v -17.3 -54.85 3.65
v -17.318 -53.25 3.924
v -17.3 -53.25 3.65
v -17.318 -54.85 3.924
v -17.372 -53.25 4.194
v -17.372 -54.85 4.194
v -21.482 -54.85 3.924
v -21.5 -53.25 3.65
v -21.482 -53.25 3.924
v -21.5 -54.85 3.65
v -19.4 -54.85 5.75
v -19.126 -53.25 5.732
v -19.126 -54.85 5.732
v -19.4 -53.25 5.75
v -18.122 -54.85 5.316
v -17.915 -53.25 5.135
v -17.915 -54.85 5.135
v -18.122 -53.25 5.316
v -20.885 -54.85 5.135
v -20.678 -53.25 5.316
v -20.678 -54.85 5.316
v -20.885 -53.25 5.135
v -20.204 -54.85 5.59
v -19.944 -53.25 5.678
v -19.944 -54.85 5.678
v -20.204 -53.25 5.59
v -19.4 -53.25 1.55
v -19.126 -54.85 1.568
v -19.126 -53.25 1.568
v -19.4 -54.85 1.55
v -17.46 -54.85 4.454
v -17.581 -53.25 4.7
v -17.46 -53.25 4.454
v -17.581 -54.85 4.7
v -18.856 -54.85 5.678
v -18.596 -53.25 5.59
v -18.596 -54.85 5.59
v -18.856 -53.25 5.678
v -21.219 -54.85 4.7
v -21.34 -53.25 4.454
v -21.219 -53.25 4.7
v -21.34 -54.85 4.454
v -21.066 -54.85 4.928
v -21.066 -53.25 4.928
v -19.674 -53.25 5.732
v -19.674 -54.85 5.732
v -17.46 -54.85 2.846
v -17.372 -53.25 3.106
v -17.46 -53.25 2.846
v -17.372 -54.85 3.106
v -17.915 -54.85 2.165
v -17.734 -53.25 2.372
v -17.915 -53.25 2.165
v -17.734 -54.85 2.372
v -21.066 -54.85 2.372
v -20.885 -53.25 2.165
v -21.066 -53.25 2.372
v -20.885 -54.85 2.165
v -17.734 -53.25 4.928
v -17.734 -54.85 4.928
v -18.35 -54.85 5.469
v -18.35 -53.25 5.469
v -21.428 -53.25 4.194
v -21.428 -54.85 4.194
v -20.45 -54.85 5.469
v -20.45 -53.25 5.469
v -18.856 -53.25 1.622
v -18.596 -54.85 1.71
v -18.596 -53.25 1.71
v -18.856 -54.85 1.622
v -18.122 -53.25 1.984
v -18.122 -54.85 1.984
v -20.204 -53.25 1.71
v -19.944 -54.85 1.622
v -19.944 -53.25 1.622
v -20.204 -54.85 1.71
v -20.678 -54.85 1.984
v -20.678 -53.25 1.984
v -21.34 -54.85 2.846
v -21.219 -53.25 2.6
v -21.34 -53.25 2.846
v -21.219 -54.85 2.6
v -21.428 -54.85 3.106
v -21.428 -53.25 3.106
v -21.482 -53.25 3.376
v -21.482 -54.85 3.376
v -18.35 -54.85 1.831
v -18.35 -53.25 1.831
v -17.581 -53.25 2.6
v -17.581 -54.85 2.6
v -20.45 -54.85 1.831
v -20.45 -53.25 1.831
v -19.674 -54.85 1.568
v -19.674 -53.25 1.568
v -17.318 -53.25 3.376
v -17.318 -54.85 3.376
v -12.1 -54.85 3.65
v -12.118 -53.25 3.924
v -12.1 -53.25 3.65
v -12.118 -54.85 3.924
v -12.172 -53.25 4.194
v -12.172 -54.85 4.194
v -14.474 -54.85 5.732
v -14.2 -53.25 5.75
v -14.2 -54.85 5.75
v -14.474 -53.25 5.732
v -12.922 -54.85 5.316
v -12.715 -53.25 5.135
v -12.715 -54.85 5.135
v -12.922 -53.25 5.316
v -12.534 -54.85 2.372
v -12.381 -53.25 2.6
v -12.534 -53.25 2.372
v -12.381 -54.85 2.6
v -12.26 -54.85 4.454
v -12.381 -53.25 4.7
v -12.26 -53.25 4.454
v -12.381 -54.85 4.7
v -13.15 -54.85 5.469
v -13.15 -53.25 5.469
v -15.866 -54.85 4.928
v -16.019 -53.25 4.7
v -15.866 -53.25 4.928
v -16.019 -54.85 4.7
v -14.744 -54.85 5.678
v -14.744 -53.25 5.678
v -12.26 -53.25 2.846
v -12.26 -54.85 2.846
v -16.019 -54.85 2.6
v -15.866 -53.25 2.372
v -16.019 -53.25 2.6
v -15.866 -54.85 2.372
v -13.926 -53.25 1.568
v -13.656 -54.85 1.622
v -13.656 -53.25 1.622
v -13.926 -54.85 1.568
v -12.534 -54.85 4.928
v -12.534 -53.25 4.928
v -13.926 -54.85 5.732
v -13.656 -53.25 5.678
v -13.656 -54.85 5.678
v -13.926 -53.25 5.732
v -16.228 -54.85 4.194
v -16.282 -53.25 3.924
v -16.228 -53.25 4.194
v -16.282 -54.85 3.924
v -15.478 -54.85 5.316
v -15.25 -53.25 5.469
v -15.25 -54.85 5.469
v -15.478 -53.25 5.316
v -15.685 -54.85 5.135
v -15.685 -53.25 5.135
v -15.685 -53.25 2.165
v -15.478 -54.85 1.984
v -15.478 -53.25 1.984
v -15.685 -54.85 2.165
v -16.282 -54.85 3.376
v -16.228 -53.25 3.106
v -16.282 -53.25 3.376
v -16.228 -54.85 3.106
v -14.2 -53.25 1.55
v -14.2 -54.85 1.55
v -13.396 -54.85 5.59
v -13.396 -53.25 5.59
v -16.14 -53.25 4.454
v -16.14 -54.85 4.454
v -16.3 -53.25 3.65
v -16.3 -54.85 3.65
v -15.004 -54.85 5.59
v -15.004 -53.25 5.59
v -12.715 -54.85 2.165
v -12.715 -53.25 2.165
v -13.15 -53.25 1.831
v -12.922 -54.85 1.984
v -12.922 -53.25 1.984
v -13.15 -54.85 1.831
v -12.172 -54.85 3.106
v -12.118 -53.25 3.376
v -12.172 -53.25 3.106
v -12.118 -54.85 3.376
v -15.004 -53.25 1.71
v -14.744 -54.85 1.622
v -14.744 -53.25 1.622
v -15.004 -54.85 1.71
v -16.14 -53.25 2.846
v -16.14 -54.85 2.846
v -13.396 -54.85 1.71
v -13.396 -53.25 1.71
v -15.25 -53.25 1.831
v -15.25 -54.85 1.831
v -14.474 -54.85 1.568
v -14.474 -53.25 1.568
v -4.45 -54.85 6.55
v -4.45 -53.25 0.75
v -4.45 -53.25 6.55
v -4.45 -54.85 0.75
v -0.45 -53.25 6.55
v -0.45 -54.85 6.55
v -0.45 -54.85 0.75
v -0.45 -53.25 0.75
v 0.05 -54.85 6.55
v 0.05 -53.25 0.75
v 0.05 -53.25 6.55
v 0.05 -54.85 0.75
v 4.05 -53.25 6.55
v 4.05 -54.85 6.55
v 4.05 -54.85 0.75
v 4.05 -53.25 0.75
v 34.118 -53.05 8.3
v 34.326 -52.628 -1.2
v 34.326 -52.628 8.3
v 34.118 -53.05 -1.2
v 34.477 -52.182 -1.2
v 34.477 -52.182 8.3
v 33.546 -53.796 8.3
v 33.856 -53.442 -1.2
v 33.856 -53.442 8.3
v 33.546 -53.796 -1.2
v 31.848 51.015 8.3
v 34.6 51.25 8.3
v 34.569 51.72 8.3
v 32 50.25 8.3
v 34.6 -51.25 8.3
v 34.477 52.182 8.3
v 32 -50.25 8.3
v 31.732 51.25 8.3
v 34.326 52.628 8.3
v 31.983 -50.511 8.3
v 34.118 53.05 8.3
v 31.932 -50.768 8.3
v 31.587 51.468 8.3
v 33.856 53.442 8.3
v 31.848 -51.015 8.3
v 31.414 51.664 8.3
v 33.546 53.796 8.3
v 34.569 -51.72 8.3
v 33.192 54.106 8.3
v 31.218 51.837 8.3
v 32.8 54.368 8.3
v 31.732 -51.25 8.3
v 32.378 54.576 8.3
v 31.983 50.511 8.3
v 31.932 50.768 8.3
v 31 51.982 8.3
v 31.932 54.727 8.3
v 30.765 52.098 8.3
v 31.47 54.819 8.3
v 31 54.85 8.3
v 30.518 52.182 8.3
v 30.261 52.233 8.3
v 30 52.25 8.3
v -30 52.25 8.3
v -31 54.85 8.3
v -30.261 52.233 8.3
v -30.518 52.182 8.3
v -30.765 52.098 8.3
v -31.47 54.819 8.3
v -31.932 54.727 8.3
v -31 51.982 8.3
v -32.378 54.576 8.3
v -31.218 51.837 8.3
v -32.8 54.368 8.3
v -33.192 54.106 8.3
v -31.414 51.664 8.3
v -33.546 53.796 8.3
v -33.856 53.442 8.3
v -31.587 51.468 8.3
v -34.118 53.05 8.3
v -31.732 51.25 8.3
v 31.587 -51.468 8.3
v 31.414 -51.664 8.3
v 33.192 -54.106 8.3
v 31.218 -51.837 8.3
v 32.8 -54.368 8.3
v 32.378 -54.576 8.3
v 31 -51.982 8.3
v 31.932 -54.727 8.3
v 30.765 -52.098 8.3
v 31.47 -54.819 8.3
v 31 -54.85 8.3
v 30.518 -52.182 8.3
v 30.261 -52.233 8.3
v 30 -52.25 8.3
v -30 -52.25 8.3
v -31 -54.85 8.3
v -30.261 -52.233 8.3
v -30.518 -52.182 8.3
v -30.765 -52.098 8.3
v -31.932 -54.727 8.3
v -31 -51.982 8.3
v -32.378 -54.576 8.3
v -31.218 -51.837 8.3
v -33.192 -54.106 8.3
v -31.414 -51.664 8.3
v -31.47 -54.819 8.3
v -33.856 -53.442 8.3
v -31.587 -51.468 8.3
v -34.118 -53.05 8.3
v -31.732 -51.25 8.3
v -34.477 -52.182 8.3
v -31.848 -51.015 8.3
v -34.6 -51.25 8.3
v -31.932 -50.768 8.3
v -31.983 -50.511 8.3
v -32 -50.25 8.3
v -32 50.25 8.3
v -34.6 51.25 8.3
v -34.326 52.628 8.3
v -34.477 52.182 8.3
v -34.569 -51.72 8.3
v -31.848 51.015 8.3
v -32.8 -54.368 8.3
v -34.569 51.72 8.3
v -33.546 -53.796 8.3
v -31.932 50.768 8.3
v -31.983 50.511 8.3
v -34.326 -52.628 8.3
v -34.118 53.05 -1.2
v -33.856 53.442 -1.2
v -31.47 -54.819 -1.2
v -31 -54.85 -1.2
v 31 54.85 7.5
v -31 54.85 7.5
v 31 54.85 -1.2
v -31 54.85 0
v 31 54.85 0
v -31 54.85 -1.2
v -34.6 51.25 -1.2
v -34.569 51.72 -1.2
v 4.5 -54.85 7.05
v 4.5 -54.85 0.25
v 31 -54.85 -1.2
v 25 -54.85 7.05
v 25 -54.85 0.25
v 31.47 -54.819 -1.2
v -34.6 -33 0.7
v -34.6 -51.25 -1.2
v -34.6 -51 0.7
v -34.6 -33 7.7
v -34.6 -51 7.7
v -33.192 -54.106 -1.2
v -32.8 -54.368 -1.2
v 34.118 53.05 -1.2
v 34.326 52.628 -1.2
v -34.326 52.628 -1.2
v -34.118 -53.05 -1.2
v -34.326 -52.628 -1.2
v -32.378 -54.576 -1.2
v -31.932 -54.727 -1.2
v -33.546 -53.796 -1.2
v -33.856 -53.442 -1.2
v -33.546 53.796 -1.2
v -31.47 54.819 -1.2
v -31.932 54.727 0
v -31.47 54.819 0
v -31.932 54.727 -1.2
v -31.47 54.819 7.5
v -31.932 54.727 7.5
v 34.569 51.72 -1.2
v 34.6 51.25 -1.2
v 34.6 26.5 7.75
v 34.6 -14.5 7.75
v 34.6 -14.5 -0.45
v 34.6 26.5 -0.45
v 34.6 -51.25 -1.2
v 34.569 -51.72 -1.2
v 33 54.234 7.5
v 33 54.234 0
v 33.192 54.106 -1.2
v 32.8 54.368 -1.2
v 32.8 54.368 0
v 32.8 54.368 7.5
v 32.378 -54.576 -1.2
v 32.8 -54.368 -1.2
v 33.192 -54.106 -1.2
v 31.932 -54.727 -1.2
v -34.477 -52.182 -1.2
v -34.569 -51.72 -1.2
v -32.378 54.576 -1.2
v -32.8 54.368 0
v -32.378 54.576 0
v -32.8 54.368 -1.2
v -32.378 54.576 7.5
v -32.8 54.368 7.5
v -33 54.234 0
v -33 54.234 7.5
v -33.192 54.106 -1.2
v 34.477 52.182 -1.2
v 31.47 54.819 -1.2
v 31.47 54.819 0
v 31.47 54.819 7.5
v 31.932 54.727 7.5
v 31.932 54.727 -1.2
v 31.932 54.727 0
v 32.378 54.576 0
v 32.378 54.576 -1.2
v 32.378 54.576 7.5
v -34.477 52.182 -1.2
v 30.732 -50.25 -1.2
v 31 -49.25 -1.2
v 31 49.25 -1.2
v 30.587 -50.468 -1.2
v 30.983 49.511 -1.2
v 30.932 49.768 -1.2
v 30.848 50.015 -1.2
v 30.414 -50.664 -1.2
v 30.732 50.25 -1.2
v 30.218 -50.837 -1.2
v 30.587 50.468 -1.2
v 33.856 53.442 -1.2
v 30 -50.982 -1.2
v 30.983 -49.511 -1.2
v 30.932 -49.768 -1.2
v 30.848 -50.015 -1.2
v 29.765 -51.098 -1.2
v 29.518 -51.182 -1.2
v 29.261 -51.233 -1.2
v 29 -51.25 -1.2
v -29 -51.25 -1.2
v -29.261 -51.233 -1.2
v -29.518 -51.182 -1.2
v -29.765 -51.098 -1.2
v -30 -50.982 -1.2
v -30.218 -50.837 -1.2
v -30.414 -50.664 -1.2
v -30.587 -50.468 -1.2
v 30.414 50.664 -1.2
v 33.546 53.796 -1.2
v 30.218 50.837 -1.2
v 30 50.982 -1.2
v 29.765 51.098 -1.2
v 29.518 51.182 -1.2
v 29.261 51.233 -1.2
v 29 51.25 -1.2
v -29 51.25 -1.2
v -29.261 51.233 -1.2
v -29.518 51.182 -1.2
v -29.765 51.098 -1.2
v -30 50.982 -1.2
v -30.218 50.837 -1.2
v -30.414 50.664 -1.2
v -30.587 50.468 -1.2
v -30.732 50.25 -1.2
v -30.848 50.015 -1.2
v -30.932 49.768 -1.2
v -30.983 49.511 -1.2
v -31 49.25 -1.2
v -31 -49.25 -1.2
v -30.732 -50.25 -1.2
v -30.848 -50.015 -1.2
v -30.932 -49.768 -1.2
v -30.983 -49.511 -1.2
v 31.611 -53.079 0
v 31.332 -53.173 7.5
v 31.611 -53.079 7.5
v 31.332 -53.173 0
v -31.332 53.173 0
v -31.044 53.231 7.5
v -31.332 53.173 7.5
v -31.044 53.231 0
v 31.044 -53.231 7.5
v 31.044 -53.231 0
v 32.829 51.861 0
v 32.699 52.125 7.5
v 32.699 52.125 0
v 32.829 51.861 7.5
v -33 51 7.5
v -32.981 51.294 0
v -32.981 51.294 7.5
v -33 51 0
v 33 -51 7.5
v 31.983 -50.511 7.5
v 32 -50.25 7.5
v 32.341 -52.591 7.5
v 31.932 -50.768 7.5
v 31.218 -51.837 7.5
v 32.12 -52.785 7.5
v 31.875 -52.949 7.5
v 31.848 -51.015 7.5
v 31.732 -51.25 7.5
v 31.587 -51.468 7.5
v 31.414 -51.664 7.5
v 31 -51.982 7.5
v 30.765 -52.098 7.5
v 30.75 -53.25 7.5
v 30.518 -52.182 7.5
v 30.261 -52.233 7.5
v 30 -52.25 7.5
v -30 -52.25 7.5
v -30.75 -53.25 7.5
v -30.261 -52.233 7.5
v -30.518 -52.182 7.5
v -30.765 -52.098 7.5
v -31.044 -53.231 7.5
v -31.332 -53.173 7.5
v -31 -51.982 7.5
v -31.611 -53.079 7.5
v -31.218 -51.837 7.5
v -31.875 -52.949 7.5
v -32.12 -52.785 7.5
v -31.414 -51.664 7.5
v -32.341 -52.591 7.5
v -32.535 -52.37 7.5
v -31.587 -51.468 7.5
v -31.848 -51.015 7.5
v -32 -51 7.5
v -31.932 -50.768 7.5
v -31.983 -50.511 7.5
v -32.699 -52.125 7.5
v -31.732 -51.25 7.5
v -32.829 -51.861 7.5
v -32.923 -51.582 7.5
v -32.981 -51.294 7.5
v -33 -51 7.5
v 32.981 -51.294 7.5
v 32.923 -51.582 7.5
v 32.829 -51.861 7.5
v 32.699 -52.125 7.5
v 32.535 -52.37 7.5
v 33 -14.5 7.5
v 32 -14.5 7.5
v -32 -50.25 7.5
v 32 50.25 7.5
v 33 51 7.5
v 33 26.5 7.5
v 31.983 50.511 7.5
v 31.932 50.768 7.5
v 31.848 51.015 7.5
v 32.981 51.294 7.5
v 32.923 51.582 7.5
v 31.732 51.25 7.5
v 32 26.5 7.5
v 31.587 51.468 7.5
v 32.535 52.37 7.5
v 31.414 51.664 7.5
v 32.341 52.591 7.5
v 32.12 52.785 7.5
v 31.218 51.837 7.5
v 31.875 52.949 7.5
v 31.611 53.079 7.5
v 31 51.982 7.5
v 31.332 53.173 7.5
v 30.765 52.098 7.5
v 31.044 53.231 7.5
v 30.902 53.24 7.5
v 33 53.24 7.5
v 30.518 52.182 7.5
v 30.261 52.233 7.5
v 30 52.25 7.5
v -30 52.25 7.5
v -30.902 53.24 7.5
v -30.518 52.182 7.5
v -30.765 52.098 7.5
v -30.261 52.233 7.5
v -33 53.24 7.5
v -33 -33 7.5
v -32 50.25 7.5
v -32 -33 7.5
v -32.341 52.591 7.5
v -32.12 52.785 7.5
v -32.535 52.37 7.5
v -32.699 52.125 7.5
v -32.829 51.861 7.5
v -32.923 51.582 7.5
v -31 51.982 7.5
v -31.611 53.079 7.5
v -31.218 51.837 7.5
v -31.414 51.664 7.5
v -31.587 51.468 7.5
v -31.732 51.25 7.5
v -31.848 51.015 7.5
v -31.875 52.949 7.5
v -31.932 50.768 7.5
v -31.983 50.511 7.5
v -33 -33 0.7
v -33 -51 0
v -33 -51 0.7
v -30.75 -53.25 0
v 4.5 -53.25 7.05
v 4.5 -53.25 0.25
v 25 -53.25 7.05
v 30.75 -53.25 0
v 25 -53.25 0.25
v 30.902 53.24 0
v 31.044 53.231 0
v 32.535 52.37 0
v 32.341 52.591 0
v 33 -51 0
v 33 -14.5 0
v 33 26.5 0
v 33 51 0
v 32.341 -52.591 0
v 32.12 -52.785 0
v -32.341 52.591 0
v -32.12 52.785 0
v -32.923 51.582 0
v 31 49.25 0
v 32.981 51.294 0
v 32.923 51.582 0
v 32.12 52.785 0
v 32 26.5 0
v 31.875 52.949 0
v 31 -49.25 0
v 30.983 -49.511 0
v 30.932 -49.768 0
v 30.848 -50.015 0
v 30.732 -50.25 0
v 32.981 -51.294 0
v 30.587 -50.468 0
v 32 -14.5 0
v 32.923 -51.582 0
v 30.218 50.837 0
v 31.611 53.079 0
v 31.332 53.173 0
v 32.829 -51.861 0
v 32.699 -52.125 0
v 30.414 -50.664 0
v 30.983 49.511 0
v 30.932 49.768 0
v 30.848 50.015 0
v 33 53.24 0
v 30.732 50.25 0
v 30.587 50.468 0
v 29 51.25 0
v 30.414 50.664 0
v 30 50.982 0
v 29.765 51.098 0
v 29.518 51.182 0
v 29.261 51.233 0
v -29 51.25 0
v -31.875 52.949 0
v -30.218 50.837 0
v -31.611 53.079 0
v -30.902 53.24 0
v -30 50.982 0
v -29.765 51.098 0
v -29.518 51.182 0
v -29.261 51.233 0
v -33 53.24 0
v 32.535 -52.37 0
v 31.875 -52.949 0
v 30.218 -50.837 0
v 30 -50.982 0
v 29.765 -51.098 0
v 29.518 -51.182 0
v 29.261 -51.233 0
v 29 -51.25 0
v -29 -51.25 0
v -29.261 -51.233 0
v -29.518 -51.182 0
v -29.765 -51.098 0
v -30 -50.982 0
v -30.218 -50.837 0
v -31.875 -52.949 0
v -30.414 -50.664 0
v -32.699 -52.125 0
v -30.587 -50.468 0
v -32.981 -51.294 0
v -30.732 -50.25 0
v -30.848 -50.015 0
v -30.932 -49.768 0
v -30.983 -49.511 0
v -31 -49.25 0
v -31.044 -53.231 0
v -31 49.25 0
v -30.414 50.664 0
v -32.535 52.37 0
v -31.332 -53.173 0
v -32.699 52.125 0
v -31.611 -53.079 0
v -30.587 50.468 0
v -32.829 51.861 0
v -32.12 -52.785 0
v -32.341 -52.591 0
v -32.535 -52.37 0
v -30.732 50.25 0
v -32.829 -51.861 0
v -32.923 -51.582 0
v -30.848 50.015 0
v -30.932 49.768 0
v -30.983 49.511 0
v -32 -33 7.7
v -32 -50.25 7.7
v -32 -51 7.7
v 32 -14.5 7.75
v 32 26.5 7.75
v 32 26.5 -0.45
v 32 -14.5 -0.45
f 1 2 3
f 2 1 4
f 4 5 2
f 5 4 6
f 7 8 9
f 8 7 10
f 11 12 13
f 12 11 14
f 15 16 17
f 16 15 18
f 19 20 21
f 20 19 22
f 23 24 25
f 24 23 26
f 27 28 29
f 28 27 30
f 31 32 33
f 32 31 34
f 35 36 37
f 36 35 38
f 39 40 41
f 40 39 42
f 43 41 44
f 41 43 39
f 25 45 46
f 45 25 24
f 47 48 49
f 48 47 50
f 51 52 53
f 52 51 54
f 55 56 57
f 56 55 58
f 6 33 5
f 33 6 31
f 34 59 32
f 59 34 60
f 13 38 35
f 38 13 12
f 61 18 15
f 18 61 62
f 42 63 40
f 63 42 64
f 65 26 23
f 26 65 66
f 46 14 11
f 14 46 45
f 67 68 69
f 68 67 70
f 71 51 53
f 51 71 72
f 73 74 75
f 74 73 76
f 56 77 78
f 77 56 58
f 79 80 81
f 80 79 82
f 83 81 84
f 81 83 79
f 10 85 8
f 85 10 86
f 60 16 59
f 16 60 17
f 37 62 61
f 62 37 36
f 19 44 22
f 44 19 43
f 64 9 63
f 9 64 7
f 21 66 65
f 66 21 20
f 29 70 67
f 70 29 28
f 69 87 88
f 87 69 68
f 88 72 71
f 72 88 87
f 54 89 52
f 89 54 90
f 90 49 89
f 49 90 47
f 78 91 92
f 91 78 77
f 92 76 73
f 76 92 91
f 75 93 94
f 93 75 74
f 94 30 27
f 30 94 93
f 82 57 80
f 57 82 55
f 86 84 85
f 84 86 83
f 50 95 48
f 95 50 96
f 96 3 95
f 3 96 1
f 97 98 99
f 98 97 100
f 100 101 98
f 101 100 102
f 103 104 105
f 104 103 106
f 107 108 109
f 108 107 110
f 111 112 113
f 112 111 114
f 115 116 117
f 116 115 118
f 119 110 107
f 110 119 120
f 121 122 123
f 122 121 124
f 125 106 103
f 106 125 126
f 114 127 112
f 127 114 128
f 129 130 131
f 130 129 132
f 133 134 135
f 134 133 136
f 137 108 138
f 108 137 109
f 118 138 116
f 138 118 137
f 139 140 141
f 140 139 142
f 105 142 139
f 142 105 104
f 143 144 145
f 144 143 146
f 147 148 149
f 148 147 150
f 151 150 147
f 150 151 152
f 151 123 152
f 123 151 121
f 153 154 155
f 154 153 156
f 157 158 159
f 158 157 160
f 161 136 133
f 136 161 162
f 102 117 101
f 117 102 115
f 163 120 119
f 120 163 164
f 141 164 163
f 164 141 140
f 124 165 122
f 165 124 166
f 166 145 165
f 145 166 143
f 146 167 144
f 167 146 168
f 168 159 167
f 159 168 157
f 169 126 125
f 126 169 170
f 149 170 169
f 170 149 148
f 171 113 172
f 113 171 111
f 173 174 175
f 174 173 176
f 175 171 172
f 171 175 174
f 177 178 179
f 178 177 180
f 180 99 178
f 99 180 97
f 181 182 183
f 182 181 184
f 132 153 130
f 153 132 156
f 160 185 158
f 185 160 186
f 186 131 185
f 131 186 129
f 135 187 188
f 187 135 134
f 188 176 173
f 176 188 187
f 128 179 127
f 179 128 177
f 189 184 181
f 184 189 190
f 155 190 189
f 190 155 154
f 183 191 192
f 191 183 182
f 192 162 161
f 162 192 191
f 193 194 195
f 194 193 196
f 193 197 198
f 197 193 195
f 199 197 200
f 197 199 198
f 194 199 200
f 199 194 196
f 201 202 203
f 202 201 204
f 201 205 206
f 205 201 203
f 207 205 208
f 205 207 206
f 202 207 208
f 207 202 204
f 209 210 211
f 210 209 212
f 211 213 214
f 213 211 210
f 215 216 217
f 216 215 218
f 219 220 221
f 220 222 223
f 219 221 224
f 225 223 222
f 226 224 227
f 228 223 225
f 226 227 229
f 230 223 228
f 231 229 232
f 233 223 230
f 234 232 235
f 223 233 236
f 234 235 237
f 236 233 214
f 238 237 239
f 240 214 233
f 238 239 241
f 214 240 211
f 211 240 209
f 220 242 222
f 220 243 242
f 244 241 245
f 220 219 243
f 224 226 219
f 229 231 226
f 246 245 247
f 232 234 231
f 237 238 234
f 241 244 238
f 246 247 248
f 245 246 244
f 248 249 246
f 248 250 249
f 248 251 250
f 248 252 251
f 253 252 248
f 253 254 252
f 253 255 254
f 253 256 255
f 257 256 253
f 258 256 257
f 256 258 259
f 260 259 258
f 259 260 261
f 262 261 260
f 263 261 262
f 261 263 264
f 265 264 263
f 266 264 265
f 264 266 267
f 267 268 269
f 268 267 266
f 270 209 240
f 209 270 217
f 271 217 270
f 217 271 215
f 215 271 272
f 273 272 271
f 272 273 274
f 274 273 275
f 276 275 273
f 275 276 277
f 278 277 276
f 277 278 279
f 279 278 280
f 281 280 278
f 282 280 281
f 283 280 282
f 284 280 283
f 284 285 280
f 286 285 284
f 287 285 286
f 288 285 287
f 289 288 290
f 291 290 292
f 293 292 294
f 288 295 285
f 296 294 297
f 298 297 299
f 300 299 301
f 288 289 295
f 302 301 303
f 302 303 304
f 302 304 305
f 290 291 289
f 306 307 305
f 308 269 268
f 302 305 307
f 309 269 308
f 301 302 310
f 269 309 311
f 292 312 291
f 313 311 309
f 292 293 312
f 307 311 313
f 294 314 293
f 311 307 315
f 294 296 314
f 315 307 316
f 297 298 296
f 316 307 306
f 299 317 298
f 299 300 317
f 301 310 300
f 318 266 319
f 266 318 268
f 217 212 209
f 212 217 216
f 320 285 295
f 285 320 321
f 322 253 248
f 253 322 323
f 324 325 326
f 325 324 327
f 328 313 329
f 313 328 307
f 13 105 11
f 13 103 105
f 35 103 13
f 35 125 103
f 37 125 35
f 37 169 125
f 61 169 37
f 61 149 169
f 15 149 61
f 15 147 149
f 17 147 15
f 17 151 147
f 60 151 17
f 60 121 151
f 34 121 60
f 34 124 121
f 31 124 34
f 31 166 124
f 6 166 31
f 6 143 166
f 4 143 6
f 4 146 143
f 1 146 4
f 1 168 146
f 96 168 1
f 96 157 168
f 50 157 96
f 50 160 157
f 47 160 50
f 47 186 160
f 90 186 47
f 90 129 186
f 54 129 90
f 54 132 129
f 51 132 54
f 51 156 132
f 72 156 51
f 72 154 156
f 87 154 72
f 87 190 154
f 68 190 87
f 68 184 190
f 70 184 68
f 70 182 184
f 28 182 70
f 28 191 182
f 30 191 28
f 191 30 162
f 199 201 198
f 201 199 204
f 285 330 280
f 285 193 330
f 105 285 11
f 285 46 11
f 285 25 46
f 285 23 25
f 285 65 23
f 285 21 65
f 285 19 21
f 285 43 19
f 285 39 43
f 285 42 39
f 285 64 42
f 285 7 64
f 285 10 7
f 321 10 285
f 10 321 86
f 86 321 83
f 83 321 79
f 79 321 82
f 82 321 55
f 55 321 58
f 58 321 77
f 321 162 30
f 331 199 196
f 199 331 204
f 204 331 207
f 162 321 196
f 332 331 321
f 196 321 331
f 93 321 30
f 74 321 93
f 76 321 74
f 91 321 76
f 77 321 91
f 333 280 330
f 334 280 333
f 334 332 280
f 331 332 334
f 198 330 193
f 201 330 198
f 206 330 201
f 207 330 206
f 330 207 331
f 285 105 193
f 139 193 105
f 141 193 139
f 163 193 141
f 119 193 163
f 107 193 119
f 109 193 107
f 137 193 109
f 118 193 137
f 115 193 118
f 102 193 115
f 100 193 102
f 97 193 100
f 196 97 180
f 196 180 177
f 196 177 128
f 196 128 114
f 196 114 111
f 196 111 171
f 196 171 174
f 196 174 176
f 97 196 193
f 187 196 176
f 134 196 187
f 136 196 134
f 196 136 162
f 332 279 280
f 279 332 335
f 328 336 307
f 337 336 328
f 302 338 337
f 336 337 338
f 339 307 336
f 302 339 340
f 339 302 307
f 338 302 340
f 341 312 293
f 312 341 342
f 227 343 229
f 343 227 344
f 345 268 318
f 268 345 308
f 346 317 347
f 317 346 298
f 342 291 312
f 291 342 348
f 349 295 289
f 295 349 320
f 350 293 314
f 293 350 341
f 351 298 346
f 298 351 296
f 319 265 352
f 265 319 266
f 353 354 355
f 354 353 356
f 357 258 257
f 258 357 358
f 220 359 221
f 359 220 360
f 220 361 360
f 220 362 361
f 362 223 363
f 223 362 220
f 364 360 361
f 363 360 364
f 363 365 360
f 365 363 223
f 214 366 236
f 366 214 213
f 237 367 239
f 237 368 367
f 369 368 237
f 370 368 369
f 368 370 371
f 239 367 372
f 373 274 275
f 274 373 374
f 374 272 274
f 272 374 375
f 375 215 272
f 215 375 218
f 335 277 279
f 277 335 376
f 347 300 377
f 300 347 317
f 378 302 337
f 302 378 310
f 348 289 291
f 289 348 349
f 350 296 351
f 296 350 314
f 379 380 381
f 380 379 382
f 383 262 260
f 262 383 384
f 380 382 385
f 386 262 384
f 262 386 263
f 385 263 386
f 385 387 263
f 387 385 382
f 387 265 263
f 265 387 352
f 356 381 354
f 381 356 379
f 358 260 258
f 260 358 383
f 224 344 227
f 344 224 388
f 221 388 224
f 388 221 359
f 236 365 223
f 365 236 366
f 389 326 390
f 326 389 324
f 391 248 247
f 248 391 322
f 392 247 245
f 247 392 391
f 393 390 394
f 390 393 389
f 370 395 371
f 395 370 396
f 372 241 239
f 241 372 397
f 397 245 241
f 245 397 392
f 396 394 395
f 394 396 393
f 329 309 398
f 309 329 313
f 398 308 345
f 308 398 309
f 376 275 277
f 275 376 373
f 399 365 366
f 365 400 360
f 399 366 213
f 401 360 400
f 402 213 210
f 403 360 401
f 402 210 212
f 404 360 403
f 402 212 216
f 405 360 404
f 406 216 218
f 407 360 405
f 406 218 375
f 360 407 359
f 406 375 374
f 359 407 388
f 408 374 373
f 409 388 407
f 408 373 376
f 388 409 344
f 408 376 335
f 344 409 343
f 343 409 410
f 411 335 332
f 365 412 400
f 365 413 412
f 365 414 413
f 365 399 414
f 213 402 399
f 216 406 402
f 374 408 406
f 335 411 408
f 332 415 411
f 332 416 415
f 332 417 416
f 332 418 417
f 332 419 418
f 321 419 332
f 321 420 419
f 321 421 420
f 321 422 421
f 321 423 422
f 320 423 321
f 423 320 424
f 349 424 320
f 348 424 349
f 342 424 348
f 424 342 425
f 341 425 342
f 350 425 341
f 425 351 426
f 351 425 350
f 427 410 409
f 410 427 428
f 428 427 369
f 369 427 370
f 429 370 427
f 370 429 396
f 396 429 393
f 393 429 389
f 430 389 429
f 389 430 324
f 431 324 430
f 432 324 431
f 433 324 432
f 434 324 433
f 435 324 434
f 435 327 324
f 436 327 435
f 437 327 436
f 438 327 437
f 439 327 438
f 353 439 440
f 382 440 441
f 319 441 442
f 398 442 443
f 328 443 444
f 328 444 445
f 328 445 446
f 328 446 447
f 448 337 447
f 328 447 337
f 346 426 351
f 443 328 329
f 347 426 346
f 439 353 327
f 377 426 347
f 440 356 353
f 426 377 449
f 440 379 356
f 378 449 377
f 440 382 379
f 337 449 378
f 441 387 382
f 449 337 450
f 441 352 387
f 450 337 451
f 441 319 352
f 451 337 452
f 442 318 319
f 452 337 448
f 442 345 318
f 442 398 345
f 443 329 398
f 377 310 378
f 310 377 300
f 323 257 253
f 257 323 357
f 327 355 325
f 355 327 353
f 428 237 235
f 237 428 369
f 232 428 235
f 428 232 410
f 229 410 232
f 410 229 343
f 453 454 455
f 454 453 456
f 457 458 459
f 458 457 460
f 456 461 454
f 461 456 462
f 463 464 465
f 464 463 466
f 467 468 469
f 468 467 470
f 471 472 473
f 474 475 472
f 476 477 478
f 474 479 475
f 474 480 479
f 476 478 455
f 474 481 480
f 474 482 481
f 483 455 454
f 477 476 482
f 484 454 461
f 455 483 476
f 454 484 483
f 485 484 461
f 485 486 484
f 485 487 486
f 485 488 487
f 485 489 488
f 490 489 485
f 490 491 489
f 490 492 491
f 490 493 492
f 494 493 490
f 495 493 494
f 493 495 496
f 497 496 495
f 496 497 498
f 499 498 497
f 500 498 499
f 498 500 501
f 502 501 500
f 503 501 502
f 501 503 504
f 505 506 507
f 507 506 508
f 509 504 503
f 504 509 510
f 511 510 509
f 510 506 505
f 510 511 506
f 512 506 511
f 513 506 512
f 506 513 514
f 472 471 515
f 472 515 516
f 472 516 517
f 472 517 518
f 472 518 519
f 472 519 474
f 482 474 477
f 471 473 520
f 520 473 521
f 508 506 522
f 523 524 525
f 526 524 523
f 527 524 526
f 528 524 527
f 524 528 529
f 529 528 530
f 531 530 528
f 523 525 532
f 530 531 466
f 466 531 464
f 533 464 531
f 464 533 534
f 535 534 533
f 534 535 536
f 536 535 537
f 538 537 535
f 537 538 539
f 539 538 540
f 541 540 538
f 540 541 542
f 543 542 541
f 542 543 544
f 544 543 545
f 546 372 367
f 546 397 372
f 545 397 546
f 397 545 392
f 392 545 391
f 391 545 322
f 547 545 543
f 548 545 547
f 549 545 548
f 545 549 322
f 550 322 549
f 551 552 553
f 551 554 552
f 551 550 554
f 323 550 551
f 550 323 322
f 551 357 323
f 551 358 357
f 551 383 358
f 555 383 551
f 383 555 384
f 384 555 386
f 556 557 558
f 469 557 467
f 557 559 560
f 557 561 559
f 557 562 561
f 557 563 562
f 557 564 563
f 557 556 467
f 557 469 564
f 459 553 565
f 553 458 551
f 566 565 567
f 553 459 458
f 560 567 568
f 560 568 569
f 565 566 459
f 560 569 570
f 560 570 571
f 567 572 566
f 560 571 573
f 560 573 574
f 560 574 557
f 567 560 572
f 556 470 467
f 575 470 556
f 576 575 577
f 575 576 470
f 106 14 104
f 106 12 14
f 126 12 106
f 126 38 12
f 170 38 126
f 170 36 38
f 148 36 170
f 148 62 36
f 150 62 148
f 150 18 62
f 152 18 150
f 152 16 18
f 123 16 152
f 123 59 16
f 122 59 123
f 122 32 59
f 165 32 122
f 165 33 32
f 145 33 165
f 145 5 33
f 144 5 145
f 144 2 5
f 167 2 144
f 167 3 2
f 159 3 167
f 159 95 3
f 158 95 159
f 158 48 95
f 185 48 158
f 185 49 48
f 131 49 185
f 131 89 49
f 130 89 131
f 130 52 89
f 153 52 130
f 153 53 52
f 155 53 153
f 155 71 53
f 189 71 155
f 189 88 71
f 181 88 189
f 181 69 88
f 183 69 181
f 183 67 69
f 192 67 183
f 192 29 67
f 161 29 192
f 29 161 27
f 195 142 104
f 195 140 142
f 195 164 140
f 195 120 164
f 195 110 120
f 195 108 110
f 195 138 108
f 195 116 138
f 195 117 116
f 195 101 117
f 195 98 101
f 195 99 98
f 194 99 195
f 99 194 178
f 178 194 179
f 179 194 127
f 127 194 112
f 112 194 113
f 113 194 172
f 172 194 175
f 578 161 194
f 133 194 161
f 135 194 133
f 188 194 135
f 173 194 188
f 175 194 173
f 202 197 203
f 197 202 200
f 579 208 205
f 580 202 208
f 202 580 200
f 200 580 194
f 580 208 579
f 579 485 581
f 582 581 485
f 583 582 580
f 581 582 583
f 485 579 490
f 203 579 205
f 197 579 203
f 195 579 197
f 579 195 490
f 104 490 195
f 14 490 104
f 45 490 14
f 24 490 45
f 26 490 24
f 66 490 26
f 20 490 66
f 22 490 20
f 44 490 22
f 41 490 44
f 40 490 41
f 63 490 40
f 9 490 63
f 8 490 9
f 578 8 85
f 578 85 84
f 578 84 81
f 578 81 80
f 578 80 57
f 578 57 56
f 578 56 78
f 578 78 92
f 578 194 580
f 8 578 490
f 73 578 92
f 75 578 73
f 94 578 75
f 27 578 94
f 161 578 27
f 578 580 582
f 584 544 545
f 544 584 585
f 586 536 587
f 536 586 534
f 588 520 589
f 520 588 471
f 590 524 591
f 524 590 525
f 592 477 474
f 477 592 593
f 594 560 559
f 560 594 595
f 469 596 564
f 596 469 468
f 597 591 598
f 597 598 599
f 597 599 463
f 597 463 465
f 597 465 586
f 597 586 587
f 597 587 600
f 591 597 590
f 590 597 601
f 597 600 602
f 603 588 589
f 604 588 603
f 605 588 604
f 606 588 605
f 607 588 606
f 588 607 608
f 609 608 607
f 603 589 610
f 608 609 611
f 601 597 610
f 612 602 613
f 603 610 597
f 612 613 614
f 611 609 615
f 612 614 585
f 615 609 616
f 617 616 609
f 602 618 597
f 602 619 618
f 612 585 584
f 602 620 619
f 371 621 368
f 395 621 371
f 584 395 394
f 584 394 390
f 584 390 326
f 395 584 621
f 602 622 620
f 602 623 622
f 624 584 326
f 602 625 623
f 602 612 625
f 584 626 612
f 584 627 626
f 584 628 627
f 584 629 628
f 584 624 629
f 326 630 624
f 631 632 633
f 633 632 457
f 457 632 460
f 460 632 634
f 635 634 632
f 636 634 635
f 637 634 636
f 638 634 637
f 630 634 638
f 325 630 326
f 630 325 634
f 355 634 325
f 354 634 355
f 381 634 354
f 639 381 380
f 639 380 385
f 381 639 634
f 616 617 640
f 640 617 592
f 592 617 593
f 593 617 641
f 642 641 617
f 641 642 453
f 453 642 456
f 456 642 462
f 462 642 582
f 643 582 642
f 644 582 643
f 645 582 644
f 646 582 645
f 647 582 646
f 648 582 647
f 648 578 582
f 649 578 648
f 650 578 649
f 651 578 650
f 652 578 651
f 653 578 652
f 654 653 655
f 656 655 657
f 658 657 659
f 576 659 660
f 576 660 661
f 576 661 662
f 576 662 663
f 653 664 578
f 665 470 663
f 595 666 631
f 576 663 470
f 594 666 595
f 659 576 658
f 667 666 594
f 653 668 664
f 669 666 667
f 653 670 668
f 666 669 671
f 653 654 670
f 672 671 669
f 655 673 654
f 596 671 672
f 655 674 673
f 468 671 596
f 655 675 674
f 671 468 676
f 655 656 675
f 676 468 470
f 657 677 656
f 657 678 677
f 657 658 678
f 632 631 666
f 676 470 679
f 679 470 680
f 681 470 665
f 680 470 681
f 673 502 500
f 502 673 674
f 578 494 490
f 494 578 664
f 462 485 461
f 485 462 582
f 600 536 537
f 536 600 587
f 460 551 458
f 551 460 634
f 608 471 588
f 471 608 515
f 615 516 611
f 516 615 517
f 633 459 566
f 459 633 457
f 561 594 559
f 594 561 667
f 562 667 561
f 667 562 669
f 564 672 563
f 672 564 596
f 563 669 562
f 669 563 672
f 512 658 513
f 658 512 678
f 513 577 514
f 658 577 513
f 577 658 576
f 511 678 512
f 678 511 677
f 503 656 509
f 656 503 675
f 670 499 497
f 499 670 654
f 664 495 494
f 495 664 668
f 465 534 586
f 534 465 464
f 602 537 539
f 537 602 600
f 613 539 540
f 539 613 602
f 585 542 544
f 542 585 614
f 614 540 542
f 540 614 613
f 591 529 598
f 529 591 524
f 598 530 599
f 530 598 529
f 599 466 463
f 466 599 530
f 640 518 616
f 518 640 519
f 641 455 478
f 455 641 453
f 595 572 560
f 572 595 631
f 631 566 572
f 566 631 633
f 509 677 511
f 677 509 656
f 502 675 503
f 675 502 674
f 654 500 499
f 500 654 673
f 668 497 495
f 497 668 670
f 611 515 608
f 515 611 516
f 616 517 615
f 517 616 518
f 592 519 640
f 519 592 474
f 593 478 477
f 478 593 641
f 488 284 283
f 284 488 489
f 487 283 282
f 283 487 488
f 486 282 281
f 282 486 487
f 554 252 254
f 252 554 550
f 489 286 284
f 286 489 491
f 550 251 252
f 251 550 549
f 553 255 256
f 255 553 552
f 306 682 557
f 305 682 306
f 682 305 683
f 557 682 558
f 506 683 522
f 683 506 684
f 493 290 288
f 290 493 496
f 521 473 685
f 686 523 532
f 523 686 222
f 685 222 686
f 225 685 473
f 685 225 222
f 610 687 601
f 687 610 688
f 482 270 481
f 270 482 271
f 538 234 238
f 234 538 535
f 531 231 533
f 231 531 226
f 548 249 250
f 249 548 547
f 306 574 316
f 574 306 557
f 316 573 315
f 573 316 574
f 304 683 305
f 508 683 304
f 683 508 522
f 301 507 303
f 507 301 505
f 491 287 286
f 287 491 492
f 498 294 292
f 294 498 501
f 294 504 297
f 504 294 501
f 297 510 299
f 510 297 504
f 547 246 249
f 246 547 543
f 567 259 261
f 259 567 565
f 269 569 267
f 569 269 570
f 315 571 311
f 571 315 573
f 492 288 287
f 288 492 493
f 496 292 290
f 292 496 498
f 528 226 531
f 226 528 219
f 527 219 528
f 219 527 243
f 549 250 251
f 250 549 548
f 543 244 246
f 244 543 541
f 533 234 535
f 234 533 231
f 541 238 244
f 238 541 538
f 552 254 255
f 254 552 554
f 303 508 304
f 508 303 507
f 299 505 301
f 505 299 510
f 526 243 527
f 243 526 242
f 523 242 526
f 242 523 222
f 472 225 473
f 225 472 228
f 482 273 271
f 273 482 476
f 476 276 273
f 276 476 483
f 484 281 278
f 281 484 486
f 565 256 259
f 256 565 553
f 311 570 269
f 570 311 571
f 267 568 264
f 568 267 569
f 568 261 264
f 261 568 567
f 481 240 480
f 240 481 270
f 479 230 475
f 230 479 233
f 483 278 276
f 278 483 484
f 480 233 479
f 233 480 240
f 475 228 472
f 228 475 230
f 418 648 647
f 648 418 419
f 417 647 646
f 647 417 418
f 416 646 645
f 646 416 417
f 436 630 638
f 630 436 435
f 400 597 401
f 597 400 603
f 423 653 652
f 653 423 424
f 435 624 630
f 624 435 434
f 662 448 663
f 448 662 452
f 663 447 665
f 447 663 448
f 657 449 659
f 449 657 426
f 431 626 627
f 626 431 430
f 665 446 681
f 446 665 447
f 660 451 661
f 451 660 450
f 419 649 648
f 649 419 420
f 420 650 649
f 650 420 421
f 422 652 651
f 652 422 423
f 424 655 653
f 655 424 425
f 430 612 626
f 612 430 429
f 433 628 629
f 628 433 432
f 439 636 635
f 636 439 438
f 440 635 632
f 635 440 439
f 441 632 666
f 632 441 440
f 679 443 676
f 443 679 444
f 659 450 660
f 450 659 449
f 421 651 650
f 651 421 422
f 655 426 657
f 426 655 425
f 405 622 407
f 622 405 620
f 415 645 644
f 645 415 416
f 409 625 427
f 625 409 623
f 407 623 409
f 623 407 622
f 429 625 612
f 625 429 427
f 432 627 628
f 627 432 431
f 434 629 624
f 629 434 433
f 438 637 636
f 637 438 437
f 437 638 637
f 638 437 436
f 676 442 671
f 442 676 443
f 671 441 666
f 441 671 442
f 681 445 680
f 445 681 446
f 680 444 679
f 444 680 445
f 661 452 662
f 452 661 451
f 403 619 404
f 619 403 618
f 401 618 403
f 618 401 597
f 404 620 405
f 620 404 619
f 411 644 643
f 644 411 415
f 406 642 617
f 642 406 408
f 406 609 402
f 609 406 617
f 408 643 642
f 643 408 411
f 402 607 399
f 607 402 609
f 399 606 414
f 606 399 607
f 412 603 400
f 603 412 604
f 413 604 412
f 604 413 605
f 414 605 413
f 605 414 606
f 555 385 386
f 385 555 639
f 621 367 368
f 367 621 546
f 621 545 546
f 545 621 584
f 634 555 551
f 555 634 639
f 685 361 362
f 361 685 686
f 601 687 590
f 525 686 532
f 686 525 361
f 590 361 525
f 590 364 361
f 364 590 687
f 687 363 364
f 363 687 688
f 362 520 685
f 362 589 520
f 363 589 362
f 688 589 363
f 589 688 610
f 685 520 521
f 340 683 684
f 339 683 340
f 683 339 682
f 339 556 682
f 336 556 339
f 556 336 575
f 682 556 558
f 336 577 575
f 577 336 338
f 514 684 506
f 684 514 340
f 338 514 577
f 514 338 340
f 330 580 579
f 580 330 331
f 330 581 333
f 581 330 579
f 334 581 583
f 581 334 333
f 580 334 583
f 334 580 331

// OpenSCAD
// file: sticky_masse.scad
// Grundmodell reTerminal Sticky – gemeinsame Maße für Sticky-Sleeve und Sticky-Sleeve-Dive (SPEC „Baukasten“).
// Maße aus dem Lanyard Case von Kenta IDA (github.com/ciniml/epaper-enclosures, Ordner sticky, CC BY 4.0),
// dort aus Seeeds Hardware-Übersicht und an einer Referenzhülle abgeglichen. Gegenprobe 17.11.2026 an Seeeds
// „Sticky Case Simple“ (innen 67,0 × 107,0 mm inkl. Spiel) – passt.
//
// Koordinaten: Hochformat. x = Breite (Mitte 0), y = Länge (Mitte 0, +y = oben, USB-C unten), z = Dicke (0 = Rücken,
// +z = Display). „rechts“ = +x (Tasten KI/▲/▼), „links“ = −x (microSD).

B = 65.5;            // Breite
L = 106.0;           // Länge
D = 7.3;             // Dicke
R = 2.0;             // Eckradius (angenommen)

SPIEL_XY = 0.25;     // Spiel je Seite
SPIEL_Z  = 0.2;      // Spiel in der Tiefe

// rechts: Tastenleiste (KI, ▲, ▼) ab 27,5 mm von oben, 39 mm lang, 6,2 mm hoch, mittig in der Dicke
TASTEN_Y0 = L / 2 - 27.5 - 39.0;
TASTEN_Y1 = L / 2 - 27.5;
TASTEN_H  = 6.2;
TASTEN_ZM = D / 2;

// links: microSD ab 87 mm von oben, 16 × 6 mm, Mitte 4,2 mm vom Rücken
SD_Y0 = L / 2 - 87.0 - 16.0;
SD_Y1 = L / 2 - 87.0;
SD_H  = 6.0;
SD_ZM = 4.2;

// unten (x von der Mitte): Reset, Mikrofon (je Ø 3,2), Ösen (3,0 × 4,8), USB-C mit Lade-LED (18,5 × 5,8)
UNTEN_ZM  = D / 2;
RESET_X   = -19.4;
MIKRO_X   = -14.2;
LOCH_D    = 3.2;
OESEN_X   = [-2.45, 2.05];
OESE_B    = 3.0;
OESE_H    = 4.8;
USB_X     = 14.75;
USB_B     = 18.5;
USB_H     = 5.8;

$fn = 48;

// abgerundetes Rechteck b × l, Höhe h, ab z = 0
module abgerundet(b, l, h, r) {
    linear_extrude(h) offset(r = r) offset(delta = -r) square([b, l], center = true);
}

// das Gerät selbst (zum Prüfen der Passform, Darstellung)
module sticky() {
    color("dimgray") abgerundet(B, L, D, R);
    color("white") translate([0, 0, D - 0.01]) abgerundet(B - 6, L - 16, 0.02, 1);   // Display, nur Andeutung
}

// Hohlraum für das Gerät inkl. Spiel (z ab 0)
module sticky_raum() {
    abgerundet(B + 2 * SPIEL_XY, L + 2 * SPIEL_XY, D + SPIEL_Z, R + SPIEL_XY);
}
// main file
// Sticky-Sleeve (Alltag/EDC/Bugout) – erste Fassung zum Prüfen der Passform auf der X1C (PETG oder PLA).
// Oben offen: der Sticky gleitet von oben hinein, Lippen vorn und hinten halten ihn. Vorn bleibt der Touch frei,
// hinten ein Fenster (Magnetring für den Microlino-Halter). Ausgespart: Tasten, microSD, USB-C, Reset, Mikro, Ösen.
// Maße: sticky_masse.scad (CC BY 4.0, Kenta IDA / ciniml). Dieses Modell: MIT wie das Repo.
include <sticky_masse.scad>

WAND        = 1.6;   // Seitenwand
LIPPE_HINTEN = 1.2;  // Dicke der Rückenlippe
UEBER_HINTEN = 2.0;  // so weit greift sie über den Rand
LIPPE_VORN  = 0.8;   // Dicke der Frontlippe
UEBER_VORN  = 1.0;
RAND        = 1.0;   // Zugabe um Aussparungen
GEGENSTAND  = false; // true = Sticky zur Ansicht mit einblenden

Bi = B + 2 * SPIEL_XY;
Li = L + 2 * SPIEL_XY;
Di = D + SPIEL_Z;
Ba = Bi + 2 * WAND;
La = Li + 2 * WAND;
H  = LIPPE_HINTEN + Di + LIPPE_VORN;

module sleeve() {
    difference() {
        translate([0, 0, -LIPPE_HINTEN]) abgerundet(Ba, La, H, R + WAND);
        sticky_raum();
        // Fenster vorn (Touch frei) und hinten
        translate([0, 0, Di - 0.01]) abgerundet(Bi - 2 * UEBER_VORN, Li - 2 * UEBER_VORN, LIPPE_VORN + 1, R);
        translate([0, 0, -LIPPE_HINTEN - 1]) abgerundet(Bi - 2 * UEBER_HINTEN, Li - 2 * UEBER_HINTEN, LIPPE_HINTEN + 1.01, R);
        // oben offen zum Einschieben: Stirnwand und beide Lippen am oberen Ende weg
        translate([-Bi / 2, Li / 2 - 0.01, 0]) cube([Bi, WAND + 1, Di]);
        // rechts: Tastenleiste
        translate([Bi / 2 - 1, TASTEN_Y0 - RAND, TASTEN_ZM - TASTEN_H / 2 - RAND])
            cube([WAND + 2, TASTEN_Y1 - TASTEN_Y0 + 2 * RAND, TASTEN_H + 2 * RAND]);
        // links: microSD
        translate([-Bi / 2 - WAND - 1, SD_Y0 - RAND, SD_ZM - SD_H / 2 - RAND / 2])
            cube([WAND + 2, SD_Y1 - SD_Y0 + 2 * RAND, SD_H + RAND]);
        // unten: USB-C mit LED, Reset, Mikro, Ösen
        translate([USB_X - USB_B / 2 - RAND, -Li / 2 - WAND - 1, UNTEN_ZM - USB_H / 2 - RAND / 2])
            cube([USB_B + 2 * RAND, WAND + 2, USB_H + RAND]);
        for (x = [RESET_X, MIKRO_X])
            translate([x, -Li / 2 + 1, UNTEN_ZM]) rotate([90, 0, 0]) cylinder(d = LOCH_D + RAND, h = WAND + 2);
        for (x = OESEN_X)
            translate([x - OESE_B / 2 - 0.5, -Li / 2 - WAND - 1, UNTEN_ZM - OESE_H / 2 - 0.5]) cube([OESE_B + 1, WAND + 2, OESE_H + 1]);
    }
}

sleeve();
if (GEGENSTAND) translate([0, 0, SPIEL_Z / 2]) %sticky();
